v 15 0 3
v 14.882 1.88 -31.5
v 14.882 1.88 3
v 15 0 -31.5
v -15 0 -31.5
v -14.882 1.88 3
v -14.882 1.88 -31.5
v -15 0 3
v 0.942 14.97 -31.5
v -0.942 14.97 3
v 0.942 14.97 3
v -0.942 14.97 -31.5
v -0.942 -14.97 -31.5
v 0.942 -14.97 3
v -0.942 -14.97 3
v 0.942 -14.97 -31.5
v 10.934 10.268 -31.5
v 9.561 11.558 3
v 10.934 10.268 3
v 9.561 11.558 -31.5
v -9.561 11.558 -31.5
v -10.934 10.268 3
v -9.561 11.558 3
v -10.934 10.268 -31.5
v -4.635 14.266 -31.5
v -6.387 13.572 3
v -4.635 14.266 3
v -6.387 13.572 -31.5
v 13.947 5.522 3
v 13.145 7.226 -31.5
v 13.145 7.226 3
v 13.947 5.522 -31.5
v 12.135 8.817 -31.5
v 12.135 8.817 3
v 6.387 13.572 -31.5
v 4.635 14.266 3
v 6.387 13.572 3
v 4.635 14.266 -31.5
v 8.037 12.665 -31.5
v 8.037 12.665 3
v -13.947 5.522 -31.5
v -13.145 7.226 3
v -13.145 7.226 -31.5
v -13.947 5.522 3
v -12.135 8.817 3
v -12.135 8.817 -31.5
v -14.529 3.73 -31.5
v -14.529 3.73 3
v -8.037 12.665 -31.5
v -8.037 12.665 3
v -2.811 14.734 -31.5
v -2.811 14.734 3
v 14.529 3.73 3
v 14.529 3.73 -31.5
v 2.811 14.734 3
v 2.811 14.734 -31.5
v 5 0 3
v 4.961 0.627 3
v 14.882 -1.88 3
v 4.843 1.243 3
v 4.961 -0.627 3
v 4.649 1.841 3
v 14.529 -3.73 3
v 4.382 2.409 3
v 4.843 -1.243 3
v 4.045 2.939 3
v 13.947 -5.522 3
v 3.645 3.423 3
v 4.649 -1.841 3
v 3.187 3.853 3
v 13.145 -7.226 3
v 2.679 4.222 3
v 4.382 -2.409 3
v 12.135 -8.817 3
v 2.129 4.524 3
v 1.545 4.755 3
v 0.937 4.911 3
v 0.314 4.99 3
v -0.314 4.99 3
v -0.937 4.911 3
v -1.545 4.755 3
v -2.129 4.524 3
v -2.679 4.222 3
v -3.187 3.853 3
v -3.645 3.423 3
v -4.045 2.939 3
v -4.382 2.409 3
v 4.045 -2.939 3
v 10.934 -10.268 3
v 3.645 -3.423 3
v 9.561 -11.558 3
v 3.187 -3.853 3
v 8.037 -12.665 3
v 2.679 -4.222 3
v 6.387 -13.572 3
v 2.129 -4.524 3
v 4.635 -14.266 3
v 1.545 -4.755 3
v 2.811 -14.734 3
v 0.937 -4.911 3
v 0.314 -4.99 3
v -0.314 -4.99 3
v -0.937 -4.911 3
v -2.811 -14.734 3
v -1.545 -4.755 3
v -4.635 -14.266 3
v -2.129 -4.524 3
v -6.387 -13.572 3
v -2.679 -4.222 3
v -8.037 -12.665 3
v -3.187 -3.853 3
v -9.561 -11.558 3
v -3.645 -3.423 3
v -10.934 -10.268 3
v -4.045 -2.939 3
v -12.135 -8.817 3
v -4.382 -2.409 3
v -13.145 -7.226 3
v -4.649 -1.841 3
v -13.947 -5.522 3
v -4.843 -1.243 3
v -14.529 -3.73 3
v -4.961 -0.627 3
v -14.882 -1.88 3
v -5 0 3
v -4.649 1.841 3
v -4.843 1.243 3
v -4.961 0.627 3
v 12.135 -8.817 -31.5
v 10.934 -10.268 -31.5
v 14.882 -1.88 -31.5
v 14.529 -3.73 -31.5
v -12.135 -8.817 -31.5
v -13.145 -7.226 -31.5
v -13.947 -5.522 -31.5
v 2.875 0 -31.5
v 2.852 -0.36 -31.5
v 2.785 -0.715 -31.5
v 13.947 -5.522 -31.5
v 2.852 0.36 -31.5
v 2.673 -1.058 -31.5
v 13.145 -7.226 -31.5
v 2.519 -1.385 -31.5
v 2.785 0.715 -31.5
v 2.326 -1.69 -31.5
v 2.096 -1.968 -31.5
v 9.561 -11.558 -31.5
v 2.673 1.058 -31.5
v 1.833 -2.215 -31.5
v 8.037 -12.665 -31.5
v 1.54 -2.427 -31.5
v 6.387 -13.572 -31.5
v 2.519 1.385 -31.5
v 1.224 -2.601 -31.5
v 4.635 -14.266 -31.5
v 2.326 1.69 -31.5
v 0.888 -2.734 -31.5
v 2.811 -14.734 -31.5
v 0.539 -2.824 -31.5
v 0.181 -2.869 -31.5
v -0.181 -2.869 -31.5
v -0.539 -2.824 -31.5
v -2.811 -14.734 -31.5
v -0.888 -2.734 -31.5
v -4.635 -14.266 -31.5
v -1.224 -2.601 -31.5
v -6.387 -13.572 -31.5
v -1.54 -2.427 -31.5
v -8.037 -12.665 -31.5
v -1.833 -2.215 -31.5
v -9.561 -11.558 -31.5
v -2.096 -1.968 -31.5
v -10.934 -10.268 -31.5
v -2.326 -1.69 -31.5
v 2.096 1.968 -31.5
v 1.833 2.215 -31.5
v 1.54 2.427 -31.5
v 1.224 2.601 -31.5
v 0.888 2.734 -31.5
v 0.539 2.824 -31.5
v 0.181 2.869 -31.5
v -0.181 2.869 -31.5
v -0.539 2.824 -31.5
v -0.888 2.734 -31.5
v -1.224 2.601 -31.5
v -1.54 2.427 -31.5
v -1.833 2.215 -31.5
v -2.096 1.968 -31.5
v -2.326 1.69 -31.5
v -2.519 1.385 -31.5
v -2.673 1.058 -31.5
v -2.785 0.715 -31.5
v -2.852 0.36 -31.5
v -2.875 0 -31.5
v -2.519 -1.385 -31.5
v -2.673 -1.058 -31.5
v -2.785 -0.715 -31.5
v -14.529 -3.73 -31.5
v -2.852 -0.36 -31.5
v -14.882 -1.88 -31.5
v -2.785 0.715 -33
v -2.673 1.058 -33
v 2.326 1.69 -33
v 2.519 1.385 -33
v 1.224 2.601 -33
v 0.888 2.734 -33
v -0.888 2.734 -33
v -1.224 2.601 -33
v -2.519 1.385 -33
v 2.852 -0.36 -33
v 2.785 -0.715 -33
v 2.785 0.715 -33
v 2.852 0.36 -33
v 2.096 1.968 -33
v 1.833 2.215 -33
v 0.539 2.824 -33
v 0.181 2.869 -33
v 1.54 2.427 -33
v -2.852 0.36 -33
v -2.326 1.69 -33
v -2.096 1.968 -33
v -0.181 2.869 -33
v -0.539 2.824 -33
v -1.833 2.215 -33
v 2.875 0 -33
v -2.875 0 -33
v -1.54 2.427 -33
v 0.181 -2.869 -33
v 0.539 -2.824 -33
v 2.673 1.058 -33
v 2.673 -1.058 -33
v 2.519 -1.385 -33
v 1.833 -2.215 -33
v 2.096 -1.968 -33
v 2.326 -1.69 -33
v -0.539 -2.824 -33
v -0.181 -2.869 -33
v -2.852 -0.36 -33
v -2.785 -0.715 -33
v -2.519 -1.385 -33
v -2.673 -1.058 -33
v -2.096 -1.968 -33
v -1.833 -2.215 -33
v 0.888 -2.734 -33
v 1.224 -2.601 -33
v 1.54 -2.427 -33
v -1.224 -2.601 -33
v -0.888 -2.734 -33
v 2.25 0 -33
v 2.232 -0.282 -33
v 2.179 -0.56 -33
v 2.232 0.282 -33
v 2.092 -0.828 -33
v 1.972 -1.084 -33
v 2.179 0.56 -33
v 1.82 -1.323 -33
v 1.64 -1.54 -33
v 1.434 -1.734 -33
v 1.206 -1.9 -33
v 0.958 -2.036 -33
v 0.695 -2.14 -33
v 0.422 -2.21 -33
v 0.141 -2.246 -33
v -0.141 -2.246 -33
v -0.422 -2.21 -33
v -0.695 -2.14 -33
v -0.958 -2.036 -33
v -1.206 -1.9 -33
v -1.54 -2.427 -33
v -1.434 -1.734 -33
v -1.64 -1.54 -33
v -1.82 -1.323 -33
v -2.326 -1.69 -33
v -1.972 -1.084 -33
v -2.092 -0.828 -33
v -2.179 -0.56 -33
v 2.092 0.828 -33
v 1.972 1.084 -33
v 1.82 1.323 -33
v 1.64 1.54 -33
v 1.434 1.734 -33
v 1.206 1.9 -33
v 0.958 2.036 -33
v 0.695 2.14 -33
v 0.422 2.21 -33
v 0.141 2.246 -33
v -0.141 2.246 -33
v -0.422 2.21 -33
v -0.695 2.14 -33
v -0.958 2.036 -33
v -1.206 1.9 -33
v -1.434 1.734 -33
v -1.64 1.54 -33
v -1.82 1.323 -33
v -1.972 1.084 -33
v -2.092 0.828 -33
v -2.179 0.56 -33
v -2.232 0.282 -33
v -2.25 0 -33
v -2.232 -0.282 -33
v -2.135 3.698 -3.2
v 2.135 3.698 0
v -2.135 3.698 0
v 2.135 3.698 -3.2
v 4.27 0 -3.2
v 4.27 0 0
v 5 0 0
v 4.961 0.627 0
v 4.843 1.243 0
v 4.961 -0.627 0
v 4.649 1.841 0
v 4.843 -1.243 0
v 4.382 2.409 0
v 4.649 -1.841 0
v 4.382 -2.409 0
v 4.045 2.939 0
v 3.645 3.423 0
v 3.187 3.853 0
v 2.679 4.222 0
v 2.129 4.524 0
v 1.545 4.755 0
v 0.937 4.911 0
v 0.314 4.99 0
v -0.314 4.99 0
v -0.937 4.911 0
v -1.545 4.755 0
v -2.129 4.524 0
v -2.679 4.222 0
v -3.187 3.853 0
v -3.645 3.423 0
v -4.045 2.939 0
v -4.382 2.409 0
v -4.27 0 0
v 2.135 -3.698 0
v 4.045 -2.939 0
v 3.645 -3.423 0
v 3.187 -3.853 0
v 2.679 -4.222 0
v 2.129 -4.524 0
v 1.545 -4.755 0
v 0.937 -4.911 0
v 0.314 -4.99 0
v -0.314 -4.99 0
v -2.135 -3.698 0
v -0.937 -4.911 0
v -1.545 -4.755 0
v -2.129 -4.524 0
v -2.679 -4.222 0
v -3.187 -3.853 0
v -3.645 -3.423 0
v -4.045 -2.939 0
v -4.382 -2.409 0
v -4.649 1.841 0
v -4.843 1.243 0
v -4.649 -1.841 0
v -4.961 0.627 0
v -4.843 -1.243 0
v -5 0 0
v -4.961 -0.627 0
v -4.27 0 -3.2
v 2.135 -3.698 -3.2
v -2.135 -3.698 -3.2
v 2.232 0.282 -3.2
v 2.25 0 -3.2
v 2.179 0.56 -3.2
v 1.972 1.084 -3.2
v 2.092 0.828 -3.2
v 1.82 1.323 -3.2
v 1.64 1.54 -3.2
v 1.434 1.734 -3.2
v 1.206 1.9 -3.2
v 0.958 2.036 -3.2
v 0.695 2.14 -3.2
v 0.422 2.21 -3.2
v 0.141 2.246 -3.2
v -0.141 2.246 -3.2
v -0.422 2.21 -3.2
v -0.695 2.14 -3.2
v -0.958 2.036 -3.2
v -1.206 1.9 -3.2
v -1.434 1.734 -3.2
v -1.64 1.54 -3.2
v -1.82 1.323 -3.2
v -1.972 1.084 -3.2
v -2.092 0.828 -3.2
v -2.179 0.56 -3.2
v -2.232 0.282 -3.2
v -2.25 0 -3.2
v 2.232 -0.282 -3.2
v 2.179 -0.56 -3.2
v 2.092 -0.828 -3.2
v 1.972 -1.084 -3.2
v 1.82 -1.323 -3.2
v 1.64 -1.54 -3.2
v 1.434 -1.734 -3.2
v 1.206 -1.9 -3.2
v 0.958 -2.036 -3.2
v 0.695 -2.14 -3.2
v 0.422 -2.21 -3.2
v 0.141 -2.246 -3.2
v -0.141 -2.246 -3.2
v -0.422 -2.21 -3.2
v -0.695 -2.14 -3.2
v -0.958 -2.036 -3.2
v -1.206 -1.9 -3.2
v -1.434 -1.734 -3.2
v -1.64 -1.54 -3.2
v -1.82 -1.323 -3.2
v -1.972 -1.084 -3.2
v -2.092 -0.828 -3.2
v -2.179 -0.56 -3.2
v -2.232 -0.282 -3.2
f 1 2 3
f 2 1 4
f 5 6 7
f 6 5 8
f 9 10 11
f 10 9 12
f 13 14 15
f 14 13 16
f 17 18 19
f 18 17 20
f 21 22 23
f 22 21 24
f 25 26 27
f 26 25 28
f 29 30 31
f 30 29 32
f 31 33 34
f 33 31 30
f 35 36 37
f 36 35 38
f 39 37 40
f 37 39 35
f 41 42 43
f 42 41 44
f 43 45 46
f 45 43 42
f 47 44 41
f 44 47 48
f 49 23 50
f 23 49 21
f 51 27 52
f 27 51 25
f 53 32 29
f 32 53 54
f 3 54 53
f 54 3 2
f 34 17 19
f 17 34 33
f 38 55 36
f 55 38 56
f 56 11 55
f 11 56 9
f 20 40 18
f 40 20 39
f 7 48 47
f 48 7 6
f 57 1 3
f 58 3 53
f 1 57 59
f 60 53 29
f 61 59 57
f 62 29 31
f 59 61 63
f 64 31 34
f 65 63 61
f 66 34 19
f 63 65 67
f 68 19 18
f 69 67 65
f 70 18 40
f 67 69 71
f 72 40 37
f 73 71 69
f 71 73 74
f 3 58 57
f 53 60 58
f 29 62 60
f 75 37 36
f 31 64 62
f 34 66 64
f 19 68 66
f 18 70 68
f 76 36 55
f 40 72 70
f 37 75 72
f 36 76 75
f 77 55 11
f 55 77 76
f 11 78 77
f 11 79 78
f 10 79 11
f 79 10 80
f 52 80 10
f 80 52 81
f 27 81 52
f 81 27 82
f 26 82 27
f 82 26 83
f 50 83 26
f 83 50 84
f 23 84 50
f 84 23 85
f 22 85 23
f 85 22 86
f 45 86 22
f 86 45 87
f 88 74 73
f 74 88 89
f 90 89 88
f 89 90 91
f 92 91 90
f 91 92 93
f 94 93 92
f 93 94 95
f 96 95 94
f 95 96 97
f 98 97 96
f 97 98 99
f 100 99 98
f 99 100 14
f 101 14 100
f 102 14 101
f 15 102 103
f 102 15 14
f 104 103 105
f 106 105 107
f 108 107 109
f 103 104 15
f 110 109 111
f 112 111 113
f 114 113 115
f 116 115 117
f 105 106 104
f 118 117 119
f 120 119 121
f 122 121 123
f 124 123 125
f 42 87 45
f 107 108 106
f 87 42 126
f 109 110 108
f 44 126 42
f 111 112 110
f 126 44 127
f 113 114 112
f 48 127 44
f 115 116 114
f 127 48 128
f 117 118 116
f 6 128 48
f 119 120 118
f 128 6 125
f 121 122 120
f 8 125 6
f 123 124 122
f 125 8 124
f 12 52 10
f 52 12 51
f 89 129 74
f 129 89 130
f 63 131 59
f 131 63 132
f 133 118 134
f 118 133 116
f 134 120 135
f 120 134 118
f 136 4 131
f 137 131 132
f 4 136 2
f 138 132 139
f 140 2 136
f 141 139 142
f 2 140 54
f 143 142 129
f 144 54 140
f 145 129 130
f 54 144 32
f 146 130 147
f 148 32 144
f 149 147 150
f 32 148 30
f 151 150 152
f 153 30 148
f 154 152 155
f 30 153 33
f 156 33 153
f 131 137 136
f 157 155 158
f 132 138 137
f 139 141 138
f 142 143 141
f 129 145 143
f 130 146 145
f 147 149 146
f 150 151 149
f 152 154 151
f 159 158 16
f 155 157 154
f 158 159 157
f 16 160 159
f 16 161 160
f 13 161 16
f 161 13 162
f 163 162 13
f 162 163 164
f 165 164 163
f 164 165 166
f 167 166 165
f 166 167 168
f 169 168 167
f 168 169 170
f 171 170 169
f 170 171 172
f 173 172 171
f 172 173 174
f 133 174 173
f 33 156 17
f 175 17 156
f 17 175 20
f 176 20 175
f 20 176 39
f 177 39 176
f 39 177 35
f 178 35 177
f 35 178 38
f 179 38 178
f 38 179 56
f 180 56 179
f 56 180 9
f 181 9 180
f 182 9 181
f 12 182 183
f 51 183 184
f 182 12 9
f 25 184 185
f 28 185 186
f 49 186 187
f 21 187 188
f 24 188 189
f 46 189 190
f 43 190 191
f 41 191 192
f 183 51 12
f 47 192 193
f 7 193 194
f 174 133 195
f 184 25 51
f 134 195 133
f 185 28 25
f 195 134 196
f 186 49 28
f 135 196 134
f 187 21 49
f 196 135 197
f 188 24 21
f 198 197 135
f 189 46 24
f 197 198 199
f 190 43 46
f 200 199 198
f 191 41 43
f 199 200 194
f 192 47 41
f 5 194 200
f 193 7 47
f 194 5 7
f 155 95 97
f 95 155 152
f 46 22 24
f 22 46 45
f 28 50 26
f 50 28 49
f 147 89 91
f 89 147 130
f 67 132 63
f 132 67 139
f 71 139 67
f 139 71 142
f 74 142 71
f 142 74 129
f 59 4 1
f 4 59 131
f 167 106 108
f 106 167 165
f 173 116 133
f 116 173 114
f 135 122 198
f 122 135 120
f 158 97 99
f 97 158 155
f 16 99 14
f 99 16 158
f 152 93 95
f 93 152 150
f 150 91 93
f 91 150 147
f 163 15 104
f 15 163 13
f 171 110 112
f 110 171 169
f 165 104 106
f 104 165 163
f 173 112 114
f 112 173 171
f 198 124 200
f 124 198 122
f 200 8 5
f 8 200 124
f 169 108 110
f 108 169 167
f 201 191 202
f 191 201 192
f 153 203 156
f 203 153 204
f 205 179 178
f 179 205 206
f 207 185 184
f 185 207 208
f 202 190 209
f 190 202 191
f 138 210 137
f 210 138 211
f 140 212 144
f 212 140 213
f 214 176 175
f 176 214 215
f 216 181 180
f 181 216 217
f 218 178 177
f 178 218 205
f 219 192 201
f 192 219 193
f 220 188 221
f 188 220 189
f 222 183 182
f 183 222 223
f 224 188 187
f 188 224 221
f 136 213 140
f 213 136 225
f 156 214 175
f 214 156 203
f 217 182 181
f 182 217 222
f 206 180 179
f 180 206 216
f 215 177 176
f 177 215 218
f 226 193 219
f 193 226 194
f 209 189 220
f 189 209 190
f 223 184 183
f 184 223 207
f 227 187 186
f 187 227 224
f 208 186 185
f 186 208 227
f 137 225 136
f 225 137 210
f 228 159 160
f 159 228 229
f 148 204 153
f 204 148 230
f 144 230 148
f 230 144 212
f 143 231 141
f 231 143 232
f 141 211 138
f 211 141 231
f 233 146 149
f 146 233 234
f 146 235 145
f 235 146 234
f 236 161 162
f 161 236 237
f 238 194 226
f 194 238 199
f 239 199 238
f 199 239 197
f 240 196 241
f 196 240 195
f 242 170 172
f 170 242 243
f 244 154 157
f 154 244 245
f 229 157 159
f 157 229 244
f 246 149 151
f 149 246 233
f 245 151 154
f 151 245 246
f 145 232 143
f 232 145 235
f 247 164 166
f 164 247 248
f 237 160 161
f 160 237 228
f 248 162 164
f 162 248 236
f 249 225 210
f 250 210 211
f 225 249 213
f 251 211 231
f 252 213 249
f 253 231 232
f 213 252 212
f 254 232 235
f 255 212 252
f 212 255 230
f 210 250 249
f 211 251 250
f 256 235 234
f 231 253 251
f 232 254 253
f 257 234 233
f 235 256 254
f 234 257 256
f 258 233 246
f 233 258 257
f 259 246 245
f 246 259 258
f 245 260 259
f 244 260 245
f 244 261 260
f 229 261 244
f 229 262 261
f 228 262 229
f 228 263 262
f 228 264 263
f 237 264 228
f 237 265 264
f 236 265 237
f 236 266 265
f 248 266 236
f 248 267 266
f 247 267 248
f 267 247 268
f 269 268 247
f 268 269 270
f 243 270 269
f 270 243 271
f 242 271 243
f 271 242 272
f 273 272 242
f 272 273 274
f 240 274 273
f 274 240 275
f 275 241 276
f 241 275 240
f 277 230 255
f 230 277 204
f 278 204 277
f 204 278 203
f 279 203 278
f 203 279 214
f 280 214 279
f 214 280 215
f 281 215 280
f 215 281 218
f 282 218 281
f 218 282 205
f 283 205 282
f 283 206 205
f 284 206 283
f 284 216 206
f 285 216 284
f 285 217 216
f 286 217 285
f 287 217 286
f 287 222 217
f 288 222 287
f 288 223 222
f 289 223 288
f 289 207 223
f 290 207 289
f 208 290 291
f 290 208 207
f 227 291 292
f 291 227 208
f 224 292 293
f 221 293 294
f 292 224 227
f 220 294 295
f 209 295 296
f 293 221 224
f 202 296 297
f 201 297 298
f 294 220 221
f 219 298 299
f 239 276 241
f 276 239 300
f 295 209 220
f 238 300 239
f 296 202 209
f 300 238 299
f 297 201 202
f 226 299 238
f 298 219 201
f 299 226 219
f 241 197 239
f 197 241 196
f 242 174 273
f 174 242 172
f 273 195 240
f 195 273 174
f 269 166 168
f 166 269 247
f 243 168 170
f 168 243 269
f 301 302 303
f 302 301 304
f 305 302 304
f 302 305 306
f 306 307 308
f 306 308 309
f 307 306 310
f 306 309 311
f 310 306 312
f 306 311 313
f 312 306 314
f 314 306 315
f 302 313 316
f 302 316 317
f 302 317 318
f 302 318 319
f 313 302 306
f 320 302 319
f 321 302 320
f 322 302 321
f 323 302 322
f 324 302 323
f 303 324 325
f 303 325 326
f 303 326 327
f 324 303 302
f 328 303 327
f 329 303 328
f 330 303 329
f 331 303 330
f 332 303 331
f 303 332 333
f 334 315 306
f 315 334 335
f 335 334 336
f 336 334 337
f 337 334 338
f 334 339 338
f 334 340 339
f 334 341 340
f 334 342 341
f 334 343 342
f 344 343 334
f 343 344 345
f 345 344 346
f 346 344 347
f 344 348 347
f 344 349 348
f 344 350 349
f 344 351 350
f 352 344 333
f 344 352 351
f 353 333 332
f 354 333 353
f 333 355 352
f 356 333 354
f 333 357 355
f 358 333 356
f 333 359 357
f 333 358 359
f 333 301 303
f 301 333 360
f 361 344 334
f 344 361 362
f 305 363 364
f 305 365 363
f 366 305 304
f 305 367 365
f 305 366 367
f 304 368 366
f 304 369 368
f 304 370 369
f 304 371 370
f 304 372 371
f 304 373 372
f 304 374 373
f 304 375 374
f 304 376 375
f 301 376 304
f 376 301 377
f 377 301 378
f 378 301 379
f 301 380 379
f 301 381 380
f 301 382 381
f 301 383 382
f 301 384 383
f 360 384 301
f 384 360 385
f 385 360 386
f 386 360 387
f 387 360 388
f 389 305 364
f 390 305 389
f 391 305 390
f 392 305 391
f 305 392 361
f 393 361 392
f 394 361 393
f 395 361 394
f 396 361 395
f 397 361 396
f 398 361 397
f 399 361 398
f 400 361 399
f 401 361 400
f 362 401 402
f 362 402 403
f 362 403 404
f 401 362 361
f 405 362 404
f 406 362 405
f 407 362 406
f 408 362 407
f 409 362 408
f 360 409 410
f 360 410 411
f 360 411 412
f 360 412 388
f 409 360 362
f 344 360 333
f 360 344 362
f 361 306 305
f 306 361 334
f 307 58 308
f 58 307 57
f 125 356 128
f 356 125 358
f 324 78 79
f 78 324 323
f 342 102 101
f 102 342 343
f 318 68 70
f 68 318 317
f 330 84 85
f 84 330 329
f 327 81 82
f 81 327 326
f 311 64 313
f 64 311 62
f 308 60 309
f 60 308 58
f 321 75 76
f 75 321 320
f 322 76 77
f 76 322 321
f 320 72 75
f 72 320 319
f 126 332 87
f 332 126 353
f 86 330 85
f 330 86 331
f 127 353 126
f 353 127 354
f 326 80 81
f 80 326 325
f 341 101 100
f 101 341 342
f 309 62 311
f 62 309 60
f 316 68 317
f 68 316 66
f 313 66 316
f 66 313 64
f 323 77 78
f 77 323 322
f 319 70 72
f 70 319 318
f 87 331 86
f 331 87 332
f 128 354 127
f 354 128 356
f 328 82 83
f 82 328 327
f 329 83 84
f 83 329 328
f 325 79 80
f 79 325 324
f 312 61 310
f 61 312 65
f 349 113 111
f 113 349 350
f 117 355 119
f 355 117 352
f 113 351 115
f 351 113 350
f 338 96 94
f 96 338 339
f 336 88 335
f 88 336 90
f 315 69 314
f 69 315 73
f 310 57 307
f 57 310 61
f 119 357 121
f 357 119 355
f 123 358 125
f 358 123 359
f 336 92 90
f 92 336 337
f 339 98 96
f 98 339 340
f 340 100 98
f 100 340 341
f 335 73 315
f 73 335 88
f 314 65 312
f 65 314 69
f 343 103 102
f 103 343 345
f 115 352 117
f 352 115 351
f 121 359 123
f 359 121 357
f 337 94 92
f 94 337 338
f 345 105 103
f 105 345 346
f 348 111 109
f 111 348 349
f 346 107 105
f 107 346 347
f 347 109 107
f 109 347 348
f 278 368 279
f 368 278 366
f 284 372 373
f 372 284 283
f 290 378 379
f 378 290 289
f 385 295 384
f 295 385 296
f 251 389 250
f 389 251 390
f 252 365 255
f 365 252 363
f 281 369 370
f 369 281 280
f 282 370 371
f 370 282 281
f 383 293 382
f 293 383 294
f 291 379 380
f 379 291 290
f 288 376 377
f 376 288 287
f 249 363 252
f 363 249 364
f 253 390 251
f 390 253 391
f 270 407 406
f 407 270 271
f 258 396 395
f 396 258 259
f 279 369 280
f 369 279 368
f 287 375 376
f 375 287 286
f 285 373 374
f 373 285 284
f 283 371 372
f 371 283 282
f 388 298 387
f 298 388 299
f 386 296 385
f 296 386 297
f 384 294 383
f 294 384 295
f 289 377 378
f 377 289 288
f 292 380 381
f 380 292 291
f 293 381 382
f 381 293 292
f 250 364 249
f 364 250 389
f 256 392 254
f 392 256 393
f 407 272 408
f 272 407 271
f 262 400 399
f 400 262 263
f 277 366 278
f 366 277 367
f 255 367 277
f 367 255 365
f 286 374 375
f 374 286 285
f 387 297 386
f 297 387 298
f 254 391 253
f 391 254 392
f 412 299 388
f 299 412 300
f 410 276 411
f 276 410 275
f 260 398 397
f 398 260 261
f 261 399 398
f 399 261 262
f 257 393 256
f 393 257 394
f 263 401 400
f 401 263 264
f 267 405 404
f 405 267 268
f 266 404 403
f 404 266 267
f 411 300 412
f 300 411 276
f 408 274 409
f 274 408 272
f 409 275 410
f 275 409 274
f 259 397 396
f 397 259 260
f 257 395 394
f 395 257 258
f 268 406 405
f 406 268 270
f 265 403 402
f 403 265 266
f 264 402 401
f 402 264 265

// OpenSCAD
$fn = 50;

difference() {
	union() {
		translate(v = [0, 0, -31.5]) {
			cylinder(h = 34.5, r = 15.0);
		}
		#translate(v = [0, 0, -33.0]) {
			cylinder(h = 33, r = 2.875);
		}
	}
	union() {
		translate(v = [0, 0, 0]) {
			rotate(a = [0, 0, 0]) {
				difference() {
					union() {
						translate(v = [0, 0, -3.2]) {
							linear_extrude(height = 3.2) {
								polygon(points = [[4.2698, 0.0], [2.1349000000000005, 3.697755269078796], [-2.134899999999999, 3.6977552690787965], [-4.2698, 5.228996902999369e-16], [-2.134900000000002, -3.6977552690787956], [2.1348999999999974, -3.697755269078798]]);
							}
						}
					}
					union();
				}
			}
		}
		#cylinder(h = 3, r = 5.0);
		#translate(v = [0, 0, -100.0]) {
			cylinder(h = 200, r = 2.25);
		}
	}
}
